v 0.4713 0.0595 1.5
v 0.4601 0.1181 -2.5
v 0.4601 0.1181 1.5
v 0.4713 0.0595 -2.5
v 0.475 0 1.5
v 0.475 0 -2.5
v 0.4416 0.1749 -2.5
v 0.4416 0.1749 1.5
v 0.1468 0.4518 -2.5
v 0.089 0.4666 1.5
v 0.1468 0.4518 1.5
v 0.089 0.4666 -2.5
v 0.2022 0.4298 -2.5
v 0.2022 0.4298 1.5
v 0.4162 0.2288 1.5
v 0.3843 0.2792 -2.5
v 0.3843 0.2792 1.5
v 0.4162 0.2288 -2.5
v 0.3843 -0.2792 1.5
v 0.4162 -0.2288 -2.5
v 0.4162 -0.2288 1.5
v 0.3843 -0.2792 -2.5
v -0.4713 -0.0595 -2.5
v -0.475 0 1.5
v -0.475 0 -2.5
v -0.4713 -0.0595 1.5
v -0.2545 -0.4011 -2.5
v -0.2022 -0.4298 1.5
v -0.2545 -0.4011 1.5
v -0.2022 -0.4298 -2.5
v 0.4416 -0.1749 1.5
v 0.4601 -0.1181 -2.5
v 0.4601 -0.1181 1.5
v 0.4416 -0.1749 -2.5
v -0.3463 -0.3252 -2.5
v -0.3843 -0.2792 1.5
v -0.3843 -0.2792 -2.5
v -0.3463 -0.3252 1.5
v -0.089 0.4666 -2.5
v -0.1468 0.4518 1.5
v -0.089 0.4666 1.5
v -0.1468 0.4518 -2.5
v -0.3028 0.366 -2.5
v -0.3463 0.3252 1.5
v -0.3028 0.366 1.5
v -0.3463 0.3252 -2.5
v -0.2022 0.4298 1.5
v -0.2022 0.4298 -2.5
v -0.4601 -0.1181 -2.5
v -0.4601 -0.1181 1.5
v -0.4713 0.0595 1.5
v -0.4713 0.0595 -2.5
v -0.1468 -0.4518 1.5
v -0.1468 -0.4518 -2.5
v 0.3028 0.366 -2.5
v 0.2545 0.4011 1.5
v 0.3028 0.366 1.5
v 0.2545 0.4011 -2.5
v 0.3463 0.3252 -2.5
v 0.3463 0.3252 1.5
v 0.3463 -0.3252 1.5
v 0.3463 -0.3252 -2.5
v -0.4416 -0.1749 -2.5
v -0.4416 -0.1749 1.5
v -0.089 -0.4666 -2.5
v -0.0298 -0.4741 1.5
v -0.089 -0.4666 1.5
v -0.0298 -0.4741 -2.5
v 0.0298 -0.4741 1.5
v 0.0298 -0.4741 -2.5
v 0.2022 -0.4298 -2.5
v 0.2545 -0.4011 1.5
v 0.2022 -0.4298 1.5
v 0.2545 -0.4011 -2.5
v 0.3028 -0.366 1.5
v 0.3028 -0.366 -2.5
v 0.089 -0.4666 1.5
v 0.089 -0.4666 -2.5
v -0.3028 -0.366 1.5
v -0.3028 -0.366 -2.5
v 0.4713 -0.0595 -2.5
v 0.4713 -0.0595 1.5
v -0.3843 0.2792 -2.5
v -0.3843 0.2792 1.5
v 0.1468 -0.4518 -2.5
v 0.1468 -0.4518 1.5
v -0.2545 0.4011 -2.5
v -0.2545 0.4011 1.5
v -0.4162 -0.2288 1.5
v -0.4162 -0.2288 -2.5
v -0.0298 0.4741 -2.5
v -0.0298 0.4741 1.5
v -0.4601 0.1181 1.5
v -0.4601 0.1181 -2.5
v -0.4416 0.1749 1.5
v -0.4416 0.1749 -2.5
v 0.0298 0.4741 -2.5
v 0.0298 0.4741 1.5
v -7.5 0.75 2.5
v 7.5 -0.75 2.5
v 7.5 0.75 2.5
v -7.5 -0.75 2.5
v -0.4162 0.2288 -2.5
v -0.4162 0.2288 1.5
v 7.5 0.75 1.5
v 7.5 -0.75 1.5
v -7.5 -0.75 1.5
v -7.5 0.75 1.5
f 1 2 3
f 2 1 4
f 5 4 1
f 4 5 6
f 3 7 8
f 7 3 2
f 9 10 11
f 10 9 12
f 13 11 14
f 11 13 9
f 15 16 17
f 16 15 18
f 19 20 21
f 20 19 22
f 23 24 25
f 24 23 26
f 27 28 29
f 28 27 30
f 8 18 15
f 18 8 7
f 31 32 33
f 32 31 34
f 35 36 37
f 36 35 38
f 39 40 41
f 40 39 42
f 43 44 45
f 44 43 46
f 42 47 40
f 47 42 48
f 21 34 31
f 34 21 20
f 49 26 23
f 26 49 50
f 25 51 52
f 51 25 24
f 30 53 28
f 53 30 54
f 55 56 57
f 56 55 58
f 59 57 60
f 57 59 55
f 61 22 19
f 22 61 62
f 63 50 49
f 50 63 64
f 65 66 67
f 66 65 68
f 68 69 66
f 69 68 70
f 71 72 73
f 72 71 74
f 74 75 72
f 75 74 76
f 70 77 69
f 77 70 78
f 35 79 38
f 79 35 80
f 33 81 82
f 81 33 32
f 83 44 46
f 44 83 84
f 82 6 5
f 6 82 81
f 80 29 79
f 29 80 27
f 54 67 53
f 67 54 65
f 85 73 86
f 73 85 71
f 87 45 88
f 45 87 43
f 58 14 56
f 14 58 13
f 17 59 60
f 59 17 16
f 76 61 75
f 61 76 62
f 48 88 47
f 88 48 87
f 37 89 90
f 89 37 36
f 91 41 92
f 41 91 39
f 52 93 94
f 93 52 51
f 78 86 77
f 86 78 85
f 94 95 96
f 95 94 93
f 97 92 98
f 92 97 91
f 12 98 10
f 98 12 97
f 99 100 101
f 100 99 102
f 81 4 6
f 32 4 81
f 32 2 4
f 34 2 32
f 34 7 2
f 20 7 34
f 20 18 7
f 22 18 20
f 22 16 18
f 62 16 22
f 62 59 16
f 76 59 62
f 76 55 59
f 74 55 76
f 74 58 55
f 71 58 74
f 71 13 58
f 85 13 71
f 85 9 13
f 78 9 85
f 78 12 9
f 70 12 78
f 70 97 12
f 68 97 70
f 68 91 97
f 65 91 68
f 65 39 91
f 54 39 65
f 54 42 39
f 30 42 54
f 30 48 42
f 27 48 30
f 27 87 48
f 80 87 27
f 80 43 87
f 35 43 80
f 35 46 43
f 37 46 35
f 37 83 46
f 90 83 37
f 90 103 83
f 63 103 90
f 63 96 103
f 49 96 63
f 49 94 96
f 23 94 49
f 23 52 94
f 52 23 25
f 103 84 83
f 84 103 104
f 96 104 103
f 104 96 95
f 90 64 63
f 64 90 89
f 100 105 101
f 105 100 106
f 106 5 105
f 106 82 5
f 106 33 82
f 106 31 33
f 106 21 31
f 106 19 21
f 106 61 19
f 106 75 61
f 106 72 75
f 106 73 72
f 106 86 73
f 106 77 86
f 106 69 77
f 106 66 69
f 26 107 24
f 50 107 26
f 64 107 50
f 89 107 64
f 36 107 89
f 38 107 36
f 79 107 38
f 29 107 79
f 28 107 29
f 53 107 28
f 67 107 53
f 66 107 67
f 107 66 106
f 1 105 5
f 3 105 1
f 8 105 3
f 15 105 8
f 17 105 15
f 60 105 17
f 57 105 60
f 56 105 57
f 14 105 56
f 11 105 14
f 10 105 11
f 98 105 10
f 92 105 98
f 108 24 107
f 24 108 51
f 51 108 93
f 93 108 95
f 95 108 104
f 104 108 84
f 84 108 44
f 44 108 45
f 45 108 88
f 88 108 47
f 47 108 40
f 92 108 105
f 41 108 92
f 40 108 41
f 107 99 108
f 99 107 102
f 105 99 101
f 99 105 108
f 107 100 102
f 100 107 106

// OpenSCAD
$fn=50;
cylinder(d=0.95, h=5, center=true);
translate([0,0,2]) cube([15,1.5,1], center=true);
